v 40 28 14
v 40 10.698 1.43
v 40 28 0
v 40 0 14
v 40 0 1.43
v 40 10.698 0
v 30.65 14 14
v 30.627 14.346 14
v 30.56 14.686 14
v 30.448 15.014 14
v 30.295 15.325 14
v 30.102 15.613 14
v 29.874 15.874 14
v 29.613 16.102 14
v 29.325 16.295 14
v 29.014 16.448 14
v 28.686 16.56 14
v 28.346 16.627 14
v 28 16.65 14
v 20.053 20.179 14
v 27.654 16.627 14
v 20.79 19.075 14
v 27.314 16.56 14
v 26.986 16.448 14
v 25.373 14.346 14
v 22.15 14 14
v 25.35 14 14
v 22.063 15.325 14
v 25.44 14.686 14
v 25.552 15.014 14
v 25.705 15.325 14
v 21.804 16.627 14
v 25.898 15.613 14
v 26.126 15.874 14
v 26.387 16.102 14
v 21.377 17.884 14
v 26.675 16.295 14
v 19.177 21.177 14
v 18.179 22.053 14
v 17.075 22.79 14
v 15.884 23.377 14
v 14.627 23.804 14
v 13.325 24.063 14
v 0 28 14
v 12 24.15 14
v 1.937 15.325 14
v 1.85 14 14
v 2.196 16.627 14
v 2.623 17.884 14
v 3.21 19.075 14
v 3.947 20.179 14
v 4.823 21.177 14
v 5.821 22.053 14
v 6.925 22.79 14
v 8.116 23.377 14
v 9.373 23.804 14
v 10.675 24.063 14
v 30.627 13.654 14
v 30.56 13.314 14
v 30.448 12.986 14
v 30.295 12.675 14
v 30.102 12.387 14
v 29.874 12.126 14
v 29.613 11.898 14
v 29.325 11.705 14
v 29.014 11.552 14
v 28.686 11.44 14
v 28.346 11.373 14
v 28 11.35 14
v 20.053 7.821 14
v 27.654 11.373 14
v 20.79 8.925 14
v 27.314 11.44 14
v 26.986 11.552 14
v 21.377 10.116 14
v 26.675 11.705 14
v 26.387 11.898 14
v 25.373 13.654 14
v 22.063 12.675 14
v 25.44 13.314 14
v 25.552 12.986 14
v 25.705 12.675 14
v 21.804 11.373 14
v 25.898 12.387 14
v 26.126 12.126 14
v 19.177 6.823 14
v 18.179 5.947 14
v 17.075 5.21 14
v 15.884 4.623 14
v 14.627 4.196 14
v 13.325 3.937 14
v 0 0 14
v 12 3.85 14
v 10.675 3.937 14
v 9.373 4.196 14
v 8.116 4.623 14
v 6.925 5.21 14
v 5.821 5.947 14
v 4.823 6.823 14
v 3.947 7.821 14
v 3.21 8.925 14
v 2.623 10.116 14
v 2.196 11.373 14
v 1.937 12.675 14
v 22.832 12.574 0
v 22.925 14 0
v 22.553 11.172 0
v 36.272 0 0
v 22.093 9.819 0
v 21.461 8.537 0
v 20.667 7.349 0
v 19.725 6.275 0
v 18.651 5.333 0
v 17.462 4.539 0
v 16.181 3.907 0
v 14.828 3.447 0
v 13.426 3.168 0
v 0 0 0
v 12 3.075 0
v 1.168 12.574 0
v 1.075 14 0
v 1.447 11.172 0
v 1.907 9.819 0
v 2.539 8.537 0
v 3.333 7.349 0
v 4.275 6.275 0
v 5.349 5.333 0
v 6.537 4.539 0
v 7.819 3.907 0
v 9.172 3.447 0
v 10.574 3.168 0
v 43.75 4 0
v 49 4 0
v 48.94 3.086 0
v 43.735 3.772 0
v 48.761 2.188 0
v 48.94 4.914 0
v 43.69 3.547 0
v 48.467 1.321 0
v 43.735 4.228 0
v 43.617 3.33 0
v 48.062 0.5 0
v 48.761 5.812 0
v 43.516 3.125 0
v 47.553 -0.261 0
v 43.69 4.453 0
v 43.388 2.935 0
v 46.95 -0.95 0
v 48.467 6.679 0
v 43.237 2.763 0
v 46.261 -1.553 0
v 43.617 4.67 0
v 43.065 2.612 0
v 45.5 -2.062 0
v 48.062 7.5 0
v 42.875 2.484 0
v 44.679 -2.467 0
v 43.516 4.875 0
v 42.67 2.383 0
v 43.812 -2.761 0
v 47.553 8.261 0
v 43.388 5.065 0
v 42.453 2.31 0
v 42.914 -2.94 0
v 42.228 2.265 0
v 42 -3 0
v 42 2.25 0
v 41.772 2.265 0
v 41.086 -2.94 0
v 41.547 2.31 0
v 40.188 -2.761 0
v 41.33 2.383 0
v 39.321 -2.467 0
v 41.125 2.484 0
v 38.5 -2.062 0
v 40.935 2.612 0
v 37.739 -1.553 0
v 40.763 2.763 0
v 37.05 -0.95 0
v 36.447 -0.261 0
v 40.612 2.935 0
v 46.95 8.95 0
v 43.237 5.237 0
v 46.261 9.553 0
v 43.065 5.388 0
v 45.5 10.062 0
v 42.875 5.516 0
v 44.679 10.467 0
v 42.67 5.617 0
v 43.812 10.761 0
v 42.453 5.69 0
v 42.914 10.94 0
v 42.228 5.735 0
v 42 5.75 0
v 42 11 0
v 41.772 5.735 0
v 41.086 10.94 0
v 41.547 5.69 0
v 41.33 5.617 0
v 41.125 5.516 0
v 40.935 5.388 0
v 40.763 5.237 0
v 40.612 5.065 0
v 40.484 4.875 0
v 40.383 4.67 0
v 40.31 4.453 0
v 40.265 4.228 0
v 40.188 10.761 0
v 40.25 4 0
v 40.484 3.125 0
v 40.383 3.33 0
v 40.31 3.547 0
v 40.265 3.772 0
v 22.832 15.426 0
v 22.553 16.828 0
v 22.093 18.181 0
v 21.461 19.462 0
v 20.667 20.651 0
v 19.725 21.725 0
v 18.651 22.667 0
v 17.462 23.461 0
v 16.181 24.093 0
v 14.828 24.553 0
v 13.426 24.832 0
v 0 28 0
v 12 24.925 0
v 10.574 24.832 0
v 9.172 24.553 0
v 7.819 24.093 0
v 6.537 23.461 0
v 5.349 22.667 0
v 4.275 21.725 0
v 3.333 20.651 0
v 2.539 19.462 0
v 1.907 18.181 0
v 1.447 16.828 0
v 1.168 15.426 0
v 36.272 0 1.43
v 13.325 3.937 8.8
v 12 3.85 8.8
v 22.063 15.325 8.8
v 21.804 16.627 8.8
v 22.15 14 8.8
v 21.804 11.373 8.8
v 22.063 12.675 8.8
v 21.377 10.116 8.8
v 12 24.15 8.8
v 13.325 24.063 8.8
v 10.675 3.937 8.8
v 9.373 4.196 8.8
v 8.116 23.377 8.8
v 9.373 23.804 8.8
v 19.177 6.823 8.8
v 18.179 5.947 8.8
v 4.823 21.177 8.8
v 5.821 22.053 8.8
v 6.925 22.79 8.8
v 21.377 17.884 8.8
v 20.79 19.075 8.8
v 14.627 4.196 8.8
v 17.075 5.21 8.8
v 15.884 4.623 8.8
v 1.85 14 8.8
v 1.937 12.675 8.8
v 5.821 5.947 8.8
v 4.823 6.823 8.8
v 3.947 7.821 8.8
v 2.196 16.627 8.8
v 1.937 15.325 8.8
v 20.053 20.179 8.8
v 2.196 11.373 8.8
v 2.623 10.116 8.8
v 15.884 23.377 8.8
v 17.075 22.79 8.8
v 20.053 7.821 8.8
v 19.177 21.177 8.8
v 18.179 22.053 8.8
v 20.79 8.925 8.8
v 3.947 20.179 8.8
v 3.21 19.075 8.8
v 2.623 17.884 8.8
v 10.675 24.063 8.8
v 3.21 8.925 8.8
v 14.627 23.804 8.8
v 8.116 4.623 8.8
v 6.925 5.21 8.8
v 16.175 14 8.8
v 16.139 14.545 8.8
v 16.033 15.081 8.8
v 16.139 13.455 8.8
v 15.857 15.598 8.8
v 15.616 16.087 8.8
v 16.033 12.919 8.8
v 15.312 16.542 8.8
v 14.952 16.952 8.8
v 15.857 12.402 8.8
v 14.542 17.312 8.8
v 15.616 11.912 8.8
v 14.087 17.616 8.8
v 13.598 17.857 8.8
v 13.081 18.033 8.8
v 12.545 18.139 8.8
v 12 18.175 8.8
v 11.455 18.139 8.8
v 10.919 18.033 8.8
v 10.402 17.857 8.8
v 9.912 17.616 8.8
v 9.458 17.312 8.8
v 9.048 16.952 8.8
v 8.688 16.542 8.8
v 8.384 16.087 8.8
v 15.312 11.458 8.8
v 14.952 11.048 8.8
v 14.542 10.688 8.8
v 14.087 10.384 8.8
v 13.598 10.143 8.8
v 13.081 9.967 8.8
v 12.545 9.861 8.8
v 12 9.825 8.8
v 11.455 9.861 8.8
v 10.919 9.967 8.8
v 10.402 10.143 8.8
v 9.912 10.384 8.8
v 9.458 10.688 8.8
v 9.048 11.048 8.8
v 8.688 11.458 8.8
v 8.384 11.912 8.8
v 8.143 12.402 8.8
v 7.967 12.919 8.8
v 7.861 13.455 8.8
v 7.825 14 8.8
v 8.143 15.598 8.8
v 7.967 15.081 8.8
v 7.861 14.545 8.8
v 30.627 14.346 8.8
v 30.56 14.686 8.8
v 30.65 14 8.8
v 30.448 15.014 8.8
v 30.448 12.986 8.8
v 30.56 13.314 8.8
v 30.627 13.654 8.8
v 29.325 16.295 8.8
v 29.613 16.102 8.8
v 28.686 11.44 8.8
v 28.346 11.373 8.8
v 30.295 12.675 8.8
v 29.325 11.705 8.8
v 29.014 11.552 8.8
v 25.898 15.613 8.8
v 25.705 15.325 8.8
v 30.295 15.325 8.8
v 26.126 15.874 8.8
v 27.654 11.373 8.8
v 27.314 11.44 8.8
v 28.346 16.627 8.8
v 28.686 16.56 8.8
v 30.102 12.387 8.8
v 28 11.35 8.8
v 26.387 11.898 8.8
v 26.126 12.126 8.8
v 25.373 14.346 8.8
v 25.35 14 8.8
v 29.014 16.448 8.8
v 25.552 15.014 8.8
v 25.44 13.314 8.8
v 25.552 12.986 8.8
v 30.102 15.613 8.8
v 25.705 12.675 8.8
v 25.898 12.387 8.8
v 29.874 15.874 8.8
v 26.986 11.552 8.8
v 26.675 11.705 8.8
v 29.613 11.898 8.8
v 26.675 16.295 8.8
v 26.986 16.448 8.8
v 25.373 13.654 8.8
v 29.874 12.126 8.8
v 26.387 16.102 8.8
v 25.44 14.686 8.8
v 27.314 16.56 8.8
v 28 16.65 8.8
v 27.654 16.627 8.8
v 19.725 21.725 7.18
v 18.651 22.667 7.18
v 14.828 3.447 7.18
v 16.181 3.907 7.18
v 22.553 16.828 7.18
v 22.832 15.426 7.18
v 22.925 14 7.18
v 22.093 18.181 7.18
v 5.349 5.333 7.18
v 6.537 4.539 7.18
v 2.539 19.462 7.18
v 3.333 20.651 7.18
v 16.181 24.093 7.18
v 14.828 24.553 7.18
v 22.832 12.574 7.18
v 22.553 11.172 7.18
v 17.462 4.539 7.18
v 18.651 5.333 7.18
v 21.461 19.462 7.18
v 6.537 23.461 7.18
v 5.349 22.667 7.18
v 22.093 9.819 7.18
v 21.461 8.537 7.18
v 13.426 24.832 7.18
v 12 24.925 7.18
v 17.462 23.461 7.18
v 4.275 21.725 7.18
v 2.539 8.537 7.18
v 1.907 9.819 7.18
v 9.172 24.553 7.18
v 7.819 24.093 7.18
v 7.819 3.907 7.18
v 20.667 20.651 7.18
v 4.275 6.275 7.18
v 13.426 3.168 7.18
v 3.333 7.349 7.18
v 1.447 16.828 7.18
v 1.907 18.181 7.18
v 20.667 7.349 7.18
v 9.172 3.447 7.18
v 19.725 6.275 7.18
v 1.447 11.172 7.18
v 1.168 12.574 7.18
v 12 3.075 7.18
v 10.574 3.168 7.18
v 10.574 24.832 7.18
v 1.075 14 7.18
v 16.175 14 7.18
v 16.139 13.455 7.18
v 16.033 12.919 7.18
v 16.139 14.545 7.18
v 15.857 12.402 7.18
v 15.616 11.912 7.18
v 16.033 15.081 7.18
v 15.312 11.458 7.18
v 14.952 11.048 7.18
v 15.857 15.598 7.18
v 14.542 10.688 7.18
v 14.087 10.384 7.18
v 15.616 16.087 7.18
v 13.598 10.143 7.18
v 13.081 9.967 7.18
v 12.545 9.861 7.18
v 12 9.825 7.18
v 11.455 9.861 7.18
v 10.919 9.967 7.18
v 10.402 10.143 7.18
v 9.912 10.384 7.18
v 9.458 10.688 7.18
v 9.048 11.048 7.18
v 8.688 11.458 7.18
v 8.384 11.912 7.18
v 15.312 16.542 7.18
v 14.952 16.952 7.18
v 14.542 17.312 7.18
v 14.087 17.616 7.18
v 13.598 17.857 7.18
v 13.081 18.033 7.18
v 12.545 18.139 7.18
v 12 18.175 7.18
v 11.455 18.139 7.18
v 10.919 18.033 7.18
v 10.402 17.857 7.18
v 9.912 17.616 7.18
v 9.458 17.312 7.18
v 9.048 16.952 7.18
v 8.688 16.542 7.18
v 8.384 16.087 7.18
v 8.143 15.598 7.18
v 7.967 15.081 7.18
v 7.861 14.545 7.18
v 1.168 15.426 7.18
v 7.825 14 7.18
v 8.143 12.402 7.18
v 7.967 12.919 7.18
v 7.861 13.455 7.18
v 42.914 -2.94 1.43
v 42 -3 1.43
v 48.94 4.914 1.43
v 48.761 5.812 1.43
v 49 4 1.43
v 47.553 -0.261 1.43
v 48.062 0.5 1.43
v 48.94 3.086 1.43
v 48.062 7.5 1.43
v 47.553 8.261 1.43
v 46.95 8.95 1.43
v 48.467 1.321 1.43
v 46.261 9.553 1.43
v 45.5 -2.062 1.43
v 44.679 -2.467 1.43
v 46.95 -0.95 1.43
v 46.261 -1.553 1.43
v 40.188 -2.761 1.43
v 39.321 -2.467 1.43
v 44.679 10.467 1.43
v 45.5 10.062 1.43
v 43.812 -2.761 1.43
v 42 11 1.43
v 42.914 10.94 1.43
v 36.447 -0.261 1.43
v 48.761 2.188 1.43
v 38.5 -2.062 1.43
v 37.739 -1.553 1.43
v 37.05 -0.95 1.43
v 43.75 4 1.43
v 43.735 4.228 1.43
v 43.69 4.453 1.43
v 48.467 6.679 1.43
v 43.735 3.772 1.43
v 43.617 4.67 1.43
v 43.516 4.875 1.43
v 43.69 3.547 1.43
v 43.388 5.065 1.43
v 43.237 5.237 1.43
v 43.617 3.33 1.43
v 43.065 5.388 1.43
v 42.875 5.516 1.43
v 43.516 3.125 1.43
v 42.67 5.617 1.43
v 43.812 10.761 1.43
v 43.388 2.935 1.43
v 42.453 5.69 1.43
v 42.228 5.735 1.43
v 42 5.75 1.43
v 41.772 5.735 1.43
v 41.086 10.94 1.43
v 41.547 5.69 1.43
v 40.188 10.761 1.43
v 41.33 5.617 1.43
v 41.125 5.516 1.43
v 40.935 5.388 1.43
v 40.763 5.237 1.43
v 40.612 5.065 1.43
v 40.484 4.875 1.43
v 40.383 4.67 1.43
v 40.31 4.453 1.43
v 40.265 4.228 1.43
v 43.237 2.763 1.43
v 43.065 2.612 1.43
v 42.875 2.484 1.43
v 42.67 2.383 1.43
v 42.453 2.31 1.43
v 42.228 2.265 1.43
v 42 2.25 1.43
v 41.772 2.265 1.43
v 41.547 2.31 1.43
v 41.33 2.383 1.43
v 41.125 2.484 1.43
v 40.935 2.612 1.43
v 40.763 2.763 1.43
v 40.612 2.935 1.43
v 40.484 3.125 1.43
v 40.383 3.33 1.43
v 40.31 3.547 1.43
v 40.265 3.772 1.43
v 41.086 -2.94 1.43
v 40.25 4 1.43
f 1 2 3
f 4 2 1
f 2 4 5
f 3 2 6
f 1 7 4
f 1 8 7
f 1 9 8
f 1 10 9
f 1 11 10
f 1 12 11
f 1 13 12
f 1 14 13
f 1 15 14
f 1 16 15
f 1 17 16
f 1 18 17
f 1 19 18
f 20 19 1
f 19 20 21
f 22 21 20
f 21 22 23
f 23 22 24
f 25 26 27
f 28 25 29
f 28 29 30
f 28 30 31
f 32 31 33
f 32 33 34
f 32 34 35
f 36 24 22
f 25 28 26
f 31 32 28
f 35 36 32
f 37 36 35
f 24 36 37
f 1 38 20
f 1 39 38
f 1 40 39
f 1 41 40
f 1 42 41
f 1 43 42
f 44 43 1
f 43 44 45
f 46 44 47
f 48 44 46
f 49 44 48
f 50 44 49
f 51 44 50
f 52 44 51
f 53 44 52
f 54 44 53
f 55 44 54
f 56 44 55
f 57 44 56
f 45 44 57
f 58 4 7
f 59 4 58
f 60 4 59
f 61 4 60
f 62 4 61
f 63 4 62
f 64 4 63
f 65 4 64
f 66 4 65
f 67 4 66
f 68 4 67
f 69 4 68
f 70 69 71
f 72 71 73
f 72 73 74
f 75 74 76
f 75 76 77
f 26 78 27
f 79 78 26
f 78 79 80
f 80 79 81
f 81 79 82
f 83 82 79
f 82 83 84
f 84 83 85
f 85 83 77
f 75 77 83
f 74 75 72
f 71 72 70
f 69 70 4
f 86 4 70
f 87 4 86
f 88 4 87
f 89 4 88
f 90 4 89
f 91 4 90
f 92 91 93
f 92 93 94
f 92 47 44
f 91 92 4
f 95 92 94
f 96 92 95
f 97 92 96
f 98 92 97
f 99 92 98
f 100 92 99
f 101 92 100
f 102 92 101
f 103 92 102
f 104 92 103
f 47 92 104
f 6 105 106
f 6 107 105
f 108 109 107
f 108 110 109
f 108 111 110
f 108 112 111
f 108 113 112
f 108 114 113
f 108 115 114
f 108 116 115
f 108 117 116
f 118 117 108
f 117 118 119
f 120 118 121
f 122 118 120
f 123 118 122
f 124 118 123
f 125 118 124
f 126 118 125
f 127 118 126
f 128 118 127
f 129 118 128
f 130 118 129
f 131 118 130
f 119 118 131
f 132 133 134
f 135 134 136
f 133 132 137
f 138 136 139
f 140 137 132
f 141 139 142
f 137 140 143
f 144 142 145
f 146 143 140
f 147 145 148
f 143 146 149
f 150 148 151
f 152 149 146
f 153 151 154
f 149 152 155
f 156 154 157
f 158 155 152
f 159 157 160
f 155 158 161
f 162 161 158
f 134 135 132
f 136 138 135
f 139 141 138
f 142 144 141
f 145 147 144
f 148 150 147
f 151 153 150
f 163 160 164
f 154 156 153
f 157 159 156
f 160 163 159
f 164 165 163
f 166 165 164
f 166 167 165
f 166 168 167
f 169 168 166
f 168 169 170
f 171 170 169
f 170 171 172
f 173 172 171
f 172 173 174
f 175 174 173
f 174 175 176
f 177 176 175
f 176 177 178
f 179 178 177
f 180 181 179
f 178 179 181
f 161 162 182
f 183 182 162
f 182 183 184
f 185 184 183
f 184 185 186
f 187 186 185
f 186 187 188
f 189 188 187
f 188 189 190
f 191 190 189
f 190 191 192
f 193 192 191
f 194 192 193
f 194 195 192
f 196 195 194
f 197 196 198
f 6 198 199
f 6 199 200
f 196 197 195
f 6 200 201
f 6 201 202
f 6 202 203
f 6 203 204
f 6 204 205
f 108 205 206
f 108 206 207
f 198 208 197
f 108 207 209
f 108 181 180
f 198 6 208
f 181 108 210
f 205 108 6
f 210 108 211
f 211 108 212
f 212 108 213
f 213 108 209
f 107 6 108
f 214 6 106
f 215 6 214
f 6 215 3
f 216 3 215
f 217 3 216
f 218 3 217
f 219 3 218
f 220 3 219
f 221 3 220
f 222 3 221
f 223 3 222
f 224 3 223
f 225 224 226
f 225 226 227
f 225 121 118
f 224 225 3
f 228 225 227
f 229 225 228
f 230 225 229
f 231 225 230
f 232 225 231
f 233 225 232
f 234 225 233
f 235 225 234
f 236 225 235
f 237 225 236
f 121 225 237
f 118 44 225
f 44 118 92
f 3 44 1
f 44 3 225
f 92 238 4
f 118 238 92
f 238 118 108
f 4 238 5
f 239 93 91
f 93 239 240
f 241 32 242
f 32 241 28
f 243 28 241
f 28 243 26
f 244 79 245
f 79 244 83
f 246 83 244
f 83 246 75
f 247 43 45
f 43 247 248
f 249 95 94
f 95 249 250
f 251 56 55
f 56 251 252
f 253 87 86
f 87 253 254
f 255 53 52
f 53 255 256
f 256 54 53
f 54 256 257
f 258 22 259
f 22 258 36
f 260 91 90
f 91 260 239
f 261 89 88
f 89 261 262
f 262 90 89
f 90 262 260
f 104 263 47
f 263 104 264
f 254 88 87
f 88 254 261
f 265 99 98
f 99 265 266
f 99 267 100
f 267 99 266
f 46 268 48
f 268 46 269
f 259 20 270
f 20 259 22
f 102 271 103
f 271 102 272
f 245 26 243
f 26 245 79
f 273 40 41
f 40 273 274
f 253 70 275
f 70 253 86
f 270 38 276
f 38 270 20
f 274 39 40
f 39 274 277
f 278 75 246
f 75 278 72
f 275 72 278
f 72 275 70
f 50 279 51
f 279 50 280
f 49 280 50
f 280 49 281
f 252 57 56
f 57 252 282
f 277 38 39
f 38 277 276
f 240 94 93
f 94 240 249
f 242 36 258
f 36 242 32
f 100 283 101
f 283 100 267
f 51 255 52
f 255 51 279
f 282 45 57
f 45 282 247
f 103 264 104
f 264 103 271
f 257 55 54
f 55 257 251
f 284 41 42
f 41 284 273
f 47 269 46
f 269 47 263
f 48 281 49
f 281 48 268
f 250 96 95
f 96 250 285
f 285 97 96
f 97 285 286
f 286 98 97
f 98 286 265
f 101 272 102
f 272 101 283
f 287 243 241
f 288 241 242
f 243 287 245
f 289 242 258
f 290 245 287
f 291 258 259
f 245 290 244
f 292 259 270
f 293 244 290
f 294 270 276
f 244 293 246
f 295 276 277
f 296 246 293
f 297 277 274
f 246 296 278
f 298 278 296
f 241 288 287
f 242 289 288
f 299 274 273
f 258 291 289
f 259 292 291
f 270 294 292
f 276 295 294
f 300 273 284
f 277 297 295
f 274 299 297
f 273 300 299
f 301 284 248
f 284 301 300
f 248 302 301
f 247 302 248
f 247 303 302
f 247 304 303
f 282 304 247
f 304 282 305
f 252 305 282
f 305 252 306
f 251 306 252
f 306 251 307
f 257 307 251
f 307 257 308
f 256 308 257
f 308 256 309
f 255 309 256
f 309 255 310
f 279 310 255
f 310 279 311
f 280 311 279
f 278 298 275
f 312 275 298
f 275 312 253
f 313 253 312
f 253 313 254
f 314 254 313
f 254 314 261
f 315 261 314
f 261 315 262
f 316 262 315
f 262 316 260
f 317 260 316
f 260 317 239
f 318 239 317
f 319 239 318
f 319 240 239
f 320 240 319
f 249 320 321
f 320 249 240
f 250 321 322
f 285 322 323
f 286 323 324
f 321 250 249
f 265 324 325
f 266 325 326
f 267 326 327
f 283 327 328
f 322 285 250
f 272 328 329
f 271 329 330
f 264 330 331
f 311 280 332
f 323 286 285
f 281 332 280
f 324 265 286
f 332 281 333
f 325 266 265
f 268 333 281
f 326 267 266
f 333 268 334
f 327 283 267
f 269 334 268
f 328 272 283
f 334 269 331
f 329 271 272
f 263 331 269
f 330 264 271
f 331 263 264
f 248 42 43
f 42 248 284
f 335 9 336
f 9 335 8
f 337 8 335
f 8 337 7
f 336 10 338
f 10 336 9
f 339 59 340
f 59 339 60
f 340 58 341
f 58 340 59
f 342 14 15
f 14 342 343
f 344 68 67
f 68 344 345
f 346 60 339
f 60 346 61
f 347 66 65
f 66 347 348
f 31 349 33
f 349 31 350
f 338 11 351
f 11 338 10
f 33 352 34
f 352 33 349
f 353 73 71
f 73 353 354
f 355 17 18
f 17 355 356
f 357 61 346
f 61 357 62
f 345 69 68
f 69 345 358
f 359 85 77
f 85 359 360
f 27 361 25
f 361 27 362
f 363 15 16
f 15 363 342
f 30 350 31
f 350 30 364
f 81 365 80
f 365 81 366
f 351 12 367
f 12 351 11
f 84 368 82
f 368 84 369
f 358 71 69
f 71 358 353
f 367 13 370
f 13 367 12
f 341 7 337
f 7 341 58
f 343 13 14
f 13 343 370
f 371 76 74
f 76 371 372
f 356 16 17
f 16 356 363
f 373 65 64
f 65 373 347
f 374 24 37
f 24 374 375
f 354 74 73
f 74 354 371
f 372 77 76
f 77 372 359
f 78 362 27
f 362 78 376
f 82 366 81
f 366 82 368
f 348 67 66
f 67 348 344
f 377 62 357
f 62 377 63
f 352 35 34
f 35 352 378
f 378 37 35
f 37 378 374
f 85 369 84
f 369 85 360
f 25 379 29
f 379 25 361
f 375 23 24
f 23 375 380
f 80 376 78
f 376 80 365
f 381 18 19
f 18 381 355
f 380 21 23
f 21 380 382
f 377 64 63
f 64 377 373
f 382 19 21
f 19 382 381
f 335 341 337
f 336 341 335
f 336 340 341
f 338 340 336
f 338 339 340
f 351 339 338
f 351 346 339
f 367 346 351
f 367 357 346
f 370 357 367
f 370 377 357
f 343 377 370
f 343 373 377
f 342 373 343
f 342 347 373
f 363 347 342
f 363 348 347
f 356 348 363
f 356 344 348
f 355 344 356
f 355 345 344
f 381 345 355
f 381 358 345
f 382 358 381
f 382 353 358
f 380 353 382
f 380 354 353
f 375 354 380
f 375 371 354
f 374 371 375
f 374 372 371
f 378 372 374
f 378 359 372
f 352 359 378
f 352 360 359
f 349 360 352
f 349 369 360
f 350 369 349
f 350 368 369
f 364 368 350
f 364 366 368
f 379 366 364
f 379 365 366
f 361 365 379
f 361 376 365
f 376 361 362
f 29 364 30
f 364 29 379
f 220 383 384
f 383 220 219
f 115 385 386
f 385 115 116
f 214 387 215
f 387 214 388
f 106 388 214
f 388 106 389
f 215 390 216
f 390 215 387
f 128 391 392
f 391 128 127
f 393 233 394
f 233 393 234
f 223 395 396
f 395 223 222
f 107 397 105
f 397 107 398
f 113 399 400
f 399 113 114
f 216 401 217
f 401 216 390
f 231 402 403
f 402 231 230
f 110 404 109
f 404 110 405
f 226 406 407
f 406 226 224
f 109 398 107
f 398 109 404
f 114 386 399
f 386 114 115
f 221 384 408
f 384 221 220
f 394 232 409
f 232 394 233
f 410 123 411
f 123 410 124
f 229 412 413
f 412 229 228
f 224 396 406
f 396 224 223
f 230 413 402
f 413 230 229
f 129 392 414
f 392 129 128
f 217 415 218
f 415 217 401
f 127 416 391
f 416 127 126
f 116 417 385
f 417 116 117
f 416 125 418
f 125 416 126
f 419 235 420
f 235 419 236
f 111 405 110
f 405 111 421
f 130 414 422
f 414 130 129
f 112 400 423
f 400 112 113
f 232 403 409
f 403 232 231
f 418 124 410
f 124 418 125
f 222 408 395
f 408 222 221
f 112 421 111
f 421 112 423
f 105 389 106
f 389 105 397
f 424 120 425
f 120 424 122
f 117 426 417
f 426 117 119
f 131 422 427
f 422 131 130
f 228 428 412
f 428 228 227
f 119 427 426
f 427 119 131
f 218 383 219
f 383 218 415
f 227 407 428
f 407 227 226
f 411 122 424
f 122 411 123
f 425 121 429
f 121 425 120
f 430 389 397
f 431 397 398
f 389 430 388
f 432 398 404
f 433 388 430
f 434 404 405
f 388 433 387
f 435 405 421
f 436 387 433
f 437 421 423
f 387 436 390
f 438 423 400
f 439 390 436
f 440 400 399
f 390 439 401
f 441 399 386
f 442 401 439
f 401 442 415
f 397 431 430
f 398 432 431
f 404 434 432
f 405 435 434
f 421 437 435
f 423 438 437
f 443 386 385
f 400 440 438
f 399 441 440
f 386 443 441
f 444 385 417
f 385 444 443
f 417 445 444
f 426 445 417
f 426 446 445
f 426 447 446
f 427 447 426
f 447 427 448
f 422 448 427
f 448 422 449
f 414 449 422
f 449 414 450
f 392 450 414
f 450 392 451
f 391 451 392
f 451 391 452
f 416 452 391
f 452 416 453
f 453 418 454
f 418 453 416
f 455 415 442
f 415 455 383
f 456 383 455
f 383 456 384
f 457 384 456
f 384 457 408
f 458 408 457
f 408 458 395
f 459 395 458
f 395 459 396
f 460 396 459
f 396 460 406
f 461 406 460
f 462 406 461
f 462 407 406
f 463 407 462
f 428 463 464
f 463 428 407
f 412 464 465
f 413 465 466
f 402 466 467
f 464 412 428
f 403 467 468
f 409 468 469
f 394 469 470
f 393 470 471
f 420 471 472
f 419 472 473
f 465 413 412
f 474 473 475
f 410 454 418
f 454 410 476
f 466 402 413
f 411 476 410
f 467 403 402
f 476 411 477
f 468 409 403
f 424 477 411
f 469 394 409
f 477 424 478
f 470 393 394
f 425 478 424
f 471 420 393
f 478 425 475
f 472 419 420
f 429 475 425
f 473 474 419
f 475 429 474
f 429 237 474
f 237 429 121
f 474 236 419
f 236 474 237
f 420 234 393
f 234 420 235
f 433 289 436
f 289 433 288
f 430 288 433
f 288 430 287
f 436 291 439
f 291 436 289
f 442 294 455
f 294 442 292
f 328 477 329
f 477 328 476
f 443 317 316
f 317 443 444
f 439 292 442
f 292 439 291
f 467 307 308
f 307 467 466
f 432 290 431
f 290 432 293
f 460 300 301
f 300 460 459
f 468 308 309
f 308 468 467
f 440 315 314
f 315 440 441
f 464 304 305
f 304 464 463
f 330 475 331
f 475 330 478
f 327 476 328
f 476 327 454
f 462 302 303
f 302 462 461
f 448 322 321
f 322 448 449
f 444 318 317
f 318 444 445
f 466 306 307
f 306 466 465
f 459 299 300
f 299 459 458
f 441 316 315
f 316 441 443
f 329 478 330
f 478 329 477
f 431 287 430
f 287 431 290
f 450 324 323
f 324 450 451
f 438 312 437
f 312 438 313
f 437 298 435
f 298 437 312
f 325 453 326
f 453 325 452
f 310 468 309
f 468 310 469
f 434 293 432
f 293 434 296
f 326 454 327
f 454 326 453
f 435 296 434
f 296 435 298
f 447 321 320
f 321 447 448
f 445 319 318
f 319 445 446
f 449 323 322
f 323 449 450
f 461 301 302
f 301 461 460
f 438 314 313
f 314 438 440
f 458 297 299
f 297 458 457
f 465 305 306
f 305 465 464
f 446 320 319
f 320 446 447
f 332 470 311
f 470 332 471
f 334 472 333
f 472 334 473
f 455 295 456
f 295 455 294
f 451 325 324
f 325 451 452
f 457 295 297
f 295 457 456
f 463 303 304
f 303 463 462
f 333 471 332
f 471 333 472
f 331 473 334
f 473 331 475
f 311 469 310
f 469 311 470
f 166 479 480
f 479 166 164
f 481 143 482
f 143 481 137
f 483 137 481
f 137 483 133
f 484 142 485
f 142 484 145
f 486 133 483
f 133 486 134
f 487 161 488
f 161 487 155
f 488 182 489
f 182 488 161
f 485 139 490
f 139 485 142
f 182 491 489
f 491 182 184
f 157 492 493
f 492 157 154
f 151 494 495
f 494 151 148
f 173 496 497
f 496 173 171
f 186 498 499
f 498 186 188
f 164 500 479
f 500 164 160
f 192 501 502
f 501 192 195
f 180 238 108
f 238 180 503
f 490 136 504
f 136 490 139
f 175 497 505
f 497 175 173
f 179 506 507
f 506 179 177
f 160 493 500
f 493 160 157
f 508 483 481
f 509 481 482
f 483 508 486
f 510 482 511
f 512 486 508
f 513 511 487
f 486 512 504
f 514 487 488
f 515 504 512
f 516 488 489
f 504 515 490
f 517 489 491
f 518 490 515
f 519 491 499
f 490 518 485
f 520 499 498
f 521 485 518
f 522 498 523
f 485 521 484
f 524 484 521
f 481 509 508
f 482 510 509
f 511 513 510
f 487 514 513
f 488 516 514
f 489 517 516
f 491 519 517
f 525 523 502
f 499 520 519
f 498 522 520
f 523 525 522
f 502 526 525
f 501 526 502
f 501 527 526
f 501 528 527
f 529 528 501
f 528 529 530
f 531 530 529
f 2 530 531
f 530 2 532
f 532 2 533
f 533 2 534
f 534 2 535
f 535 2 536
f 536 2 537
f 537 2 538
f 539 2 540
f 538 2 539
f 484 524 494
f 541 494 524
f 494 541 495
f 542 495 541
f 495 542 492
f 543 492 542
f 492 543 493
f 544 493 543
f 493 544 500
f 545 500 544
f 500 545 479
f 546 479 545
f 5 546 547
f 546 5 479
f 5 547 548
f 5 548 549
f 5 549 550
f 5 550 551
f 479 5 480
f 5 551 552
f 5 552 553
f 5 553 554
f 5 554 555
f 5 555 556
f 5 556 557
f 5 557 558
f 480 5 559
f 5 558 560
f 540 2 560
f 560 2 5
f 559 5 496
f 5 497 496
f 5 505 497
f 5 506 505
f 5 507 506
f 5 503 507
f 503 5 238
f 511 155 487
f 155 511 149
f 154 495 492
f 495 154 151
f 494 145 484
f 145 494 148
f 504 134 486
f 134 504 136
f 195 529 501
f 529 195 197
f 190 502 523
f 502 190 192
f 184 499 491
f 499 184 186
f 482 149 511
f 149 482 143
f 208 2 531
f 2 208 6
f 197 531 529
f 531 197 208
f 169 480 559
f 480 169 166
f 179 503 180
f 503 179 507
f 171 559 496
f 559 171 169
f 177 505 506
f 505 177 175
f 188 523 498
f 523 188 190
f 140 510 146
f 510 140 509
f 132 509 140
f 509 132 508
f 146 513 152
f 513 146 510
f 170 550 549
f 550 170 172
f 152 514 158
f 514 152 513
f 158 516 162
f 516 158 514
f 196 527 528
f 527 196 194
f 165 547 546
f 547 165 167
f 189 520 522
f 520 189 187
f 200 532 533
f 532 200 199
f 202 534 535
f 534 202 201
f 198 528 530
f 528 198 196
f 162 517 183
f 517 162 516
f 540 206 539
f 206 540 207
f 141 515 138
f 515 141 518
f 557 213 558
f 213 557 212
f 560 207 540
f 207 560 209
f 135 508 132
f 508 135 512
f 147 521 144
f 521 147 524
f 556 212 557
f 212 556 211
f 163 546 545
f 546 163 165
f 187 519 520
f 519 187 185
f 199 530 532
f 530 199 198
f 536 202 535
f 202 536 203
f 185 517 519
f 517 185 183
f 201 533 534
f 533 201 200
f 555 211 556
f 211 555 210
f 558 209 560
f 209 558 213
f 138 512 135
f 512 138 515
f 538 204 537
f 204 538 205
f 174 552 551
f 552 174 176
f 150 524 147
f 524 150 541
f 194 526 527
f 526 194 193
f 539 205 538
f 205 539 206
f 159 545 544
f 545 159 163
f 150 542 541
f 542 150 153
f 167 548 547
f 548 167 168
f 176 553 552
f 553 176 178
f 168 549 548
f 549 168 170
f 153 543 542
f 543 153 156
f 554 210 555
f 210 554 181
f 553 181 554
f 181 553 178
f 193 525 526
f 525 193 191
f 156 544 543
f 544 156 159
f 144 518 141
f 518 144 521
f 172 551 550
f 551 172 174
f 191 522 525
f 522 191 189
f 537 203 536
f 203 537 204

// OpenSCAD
// file: parameters.scad
// =============================================================================
// Gen-S Dual-rotor ULTRA-THIN AFPM — WOUND-AWARE parameters (HARD GATE)
// Primary challenger vs Gen-P. Target m2m ≤ 7.0 while magnet↔wound ≥ 0.80.
// =============================================================================

// --- Wire / wind budget (26 AWG, ~1 lb spool ≈ 390 m bare-equiv) --------------
wire_awg            = 26;
wire_od             = 0.45;     // insulated OD mm
turns               = 130;      // +10 vs Gen-P; extra goes radial
fill                = 0.70;
layers_per_face     = 2;        // axial layers proud of EACH flange
wind_build_axial    = layers_per_face * wire_od * fill;   // 0.63 mm
wind_build_radial   = 3 * wire_od * fill;                 // 0.945 mm (extra turns)

// --- Pancake former (bare STL) — thinner web/flange than Gen-P ---------------
coil_id_r           = 24.0;     // larger window vs Gen-P 26–54
coil_od_r           = 56.0;
span_deg            = 26.0;     // 12 stations × 30° pitch
former_web          = 2.2;      // thinner than Gen-P 2.6
flange_t            = 0.8;      // thinner than Gen-P 0.9
wall                = 1.2;
slot_w              = 2.4;
mount_hole          = 3.5;
tab_len             = 7.0;

former_bare_h       = former_web + 2 * flange_t;            // 3.8 mm
coil_envelope_h     = former_bare_h + 2 * wind_build_axial; // 5.06 mm

// --- Running clearance (magnet face → WOUND face) EACH side ------------------
run_clear           = 0.80;     // PASS ≥ 0.80 preferred
gap_spacer_h        = run_clear + wind_build_axial;         // 1.43 mm
m2m                 = coil_envelope_h + 2 * run_clear;      // 6.66 mm (≤7.0 vs Gen-P 7.26)

// --- Mid stator (12 pancakes 3φ; winds proud both faces) ---------------------
coil_stations       = 12;
bay_r_in            = coil_id_r - 2.0 - wind_build_radial;
bay_r_out           = coil_od_r + 2.0 + wind_build_radial;
bay_span            = span_deg + 4.0;
bay_offset          = 2.0;
stator_thick        = former_bare_h;                        // winds proud ±Z
stator_od           = 152.0;
shaft_clear_stator  = 36.0;
coil_mount_r        = 28.0;

// --- Rotors (×2) — 8×Ø20 + 24×Ø5 Halbach each face ---------------------------
large_pocket_d      = 20.3;
small_pocket_d      = 5.3;
pocket_h            = 5.2;
large_n             = 8;
R_large             = 50.0;
R_small_inner       = 38.0;
R_small_mid         = 50.0;
R_small_outer       = 62.0;
carrier_od          = 148.0;
carrier_thick       = 7.5;
hub_h               = 10.0;
hub_od              = 30.0;
rotor_b_offset_deg  = 22.5;

// --- Modular MAX interface (Gen-E family) ------------------------------------
shaft_bore          = 8.35;
bearing_d           = 21.85;
bearing_h           = 7.2;
m3_clear            = 3.5;
bolt_r_inner        = 36.0;
bolt_n_inner        = 6;
flange_bolt_r       = 72.0;
flange_bolt_n       = 6;
brace_r             = 68.0;
brace_d             = 4.3;
brace_n             = 4;

spacer_pad_od       = 14.0;
spacer_pad_id       = m3_clear;
endbell_od          = 152.0;
endbell_thick       = 8.0;
endbell_shaft_clear = 10.0;

$fn = 64;
// main file
// Gen-S fit coupon — magnet pockets + 608 + spacer height
include <parameters.scad>;
$fn = 48;
block_w = 40; block_d = 28; block_h = 14;
difference() {
    cube([block_w, block_d, block_h]);
    translate([12, block_d/2, block_h - pocket_h])
        cylinder(d=large_pocket_d, h=pocket_h + 0.2);
    translate([28, block_d/2, block_h - pocket_h])
        cylinder(d=small_pocket_d, h=pocket_h + 0.2);
    translate([12, block_d/2, -0.02])
        cylinder(d=bearing_d, h=bearing_h);
    translate([12, block_d/2, -0.1])
        cylinder(d=shaft_bore, h=block_h + 1);
}
translate([block_w + 2, 4, 0])
    difference() {
        cylinder(d=spacer_pad_od, h=gap_spacer_h);
        translate([0, 0, -0.1]) cylinder(d=spacer_pad_id, h=gap_spacer_h + 0.2);
    }
